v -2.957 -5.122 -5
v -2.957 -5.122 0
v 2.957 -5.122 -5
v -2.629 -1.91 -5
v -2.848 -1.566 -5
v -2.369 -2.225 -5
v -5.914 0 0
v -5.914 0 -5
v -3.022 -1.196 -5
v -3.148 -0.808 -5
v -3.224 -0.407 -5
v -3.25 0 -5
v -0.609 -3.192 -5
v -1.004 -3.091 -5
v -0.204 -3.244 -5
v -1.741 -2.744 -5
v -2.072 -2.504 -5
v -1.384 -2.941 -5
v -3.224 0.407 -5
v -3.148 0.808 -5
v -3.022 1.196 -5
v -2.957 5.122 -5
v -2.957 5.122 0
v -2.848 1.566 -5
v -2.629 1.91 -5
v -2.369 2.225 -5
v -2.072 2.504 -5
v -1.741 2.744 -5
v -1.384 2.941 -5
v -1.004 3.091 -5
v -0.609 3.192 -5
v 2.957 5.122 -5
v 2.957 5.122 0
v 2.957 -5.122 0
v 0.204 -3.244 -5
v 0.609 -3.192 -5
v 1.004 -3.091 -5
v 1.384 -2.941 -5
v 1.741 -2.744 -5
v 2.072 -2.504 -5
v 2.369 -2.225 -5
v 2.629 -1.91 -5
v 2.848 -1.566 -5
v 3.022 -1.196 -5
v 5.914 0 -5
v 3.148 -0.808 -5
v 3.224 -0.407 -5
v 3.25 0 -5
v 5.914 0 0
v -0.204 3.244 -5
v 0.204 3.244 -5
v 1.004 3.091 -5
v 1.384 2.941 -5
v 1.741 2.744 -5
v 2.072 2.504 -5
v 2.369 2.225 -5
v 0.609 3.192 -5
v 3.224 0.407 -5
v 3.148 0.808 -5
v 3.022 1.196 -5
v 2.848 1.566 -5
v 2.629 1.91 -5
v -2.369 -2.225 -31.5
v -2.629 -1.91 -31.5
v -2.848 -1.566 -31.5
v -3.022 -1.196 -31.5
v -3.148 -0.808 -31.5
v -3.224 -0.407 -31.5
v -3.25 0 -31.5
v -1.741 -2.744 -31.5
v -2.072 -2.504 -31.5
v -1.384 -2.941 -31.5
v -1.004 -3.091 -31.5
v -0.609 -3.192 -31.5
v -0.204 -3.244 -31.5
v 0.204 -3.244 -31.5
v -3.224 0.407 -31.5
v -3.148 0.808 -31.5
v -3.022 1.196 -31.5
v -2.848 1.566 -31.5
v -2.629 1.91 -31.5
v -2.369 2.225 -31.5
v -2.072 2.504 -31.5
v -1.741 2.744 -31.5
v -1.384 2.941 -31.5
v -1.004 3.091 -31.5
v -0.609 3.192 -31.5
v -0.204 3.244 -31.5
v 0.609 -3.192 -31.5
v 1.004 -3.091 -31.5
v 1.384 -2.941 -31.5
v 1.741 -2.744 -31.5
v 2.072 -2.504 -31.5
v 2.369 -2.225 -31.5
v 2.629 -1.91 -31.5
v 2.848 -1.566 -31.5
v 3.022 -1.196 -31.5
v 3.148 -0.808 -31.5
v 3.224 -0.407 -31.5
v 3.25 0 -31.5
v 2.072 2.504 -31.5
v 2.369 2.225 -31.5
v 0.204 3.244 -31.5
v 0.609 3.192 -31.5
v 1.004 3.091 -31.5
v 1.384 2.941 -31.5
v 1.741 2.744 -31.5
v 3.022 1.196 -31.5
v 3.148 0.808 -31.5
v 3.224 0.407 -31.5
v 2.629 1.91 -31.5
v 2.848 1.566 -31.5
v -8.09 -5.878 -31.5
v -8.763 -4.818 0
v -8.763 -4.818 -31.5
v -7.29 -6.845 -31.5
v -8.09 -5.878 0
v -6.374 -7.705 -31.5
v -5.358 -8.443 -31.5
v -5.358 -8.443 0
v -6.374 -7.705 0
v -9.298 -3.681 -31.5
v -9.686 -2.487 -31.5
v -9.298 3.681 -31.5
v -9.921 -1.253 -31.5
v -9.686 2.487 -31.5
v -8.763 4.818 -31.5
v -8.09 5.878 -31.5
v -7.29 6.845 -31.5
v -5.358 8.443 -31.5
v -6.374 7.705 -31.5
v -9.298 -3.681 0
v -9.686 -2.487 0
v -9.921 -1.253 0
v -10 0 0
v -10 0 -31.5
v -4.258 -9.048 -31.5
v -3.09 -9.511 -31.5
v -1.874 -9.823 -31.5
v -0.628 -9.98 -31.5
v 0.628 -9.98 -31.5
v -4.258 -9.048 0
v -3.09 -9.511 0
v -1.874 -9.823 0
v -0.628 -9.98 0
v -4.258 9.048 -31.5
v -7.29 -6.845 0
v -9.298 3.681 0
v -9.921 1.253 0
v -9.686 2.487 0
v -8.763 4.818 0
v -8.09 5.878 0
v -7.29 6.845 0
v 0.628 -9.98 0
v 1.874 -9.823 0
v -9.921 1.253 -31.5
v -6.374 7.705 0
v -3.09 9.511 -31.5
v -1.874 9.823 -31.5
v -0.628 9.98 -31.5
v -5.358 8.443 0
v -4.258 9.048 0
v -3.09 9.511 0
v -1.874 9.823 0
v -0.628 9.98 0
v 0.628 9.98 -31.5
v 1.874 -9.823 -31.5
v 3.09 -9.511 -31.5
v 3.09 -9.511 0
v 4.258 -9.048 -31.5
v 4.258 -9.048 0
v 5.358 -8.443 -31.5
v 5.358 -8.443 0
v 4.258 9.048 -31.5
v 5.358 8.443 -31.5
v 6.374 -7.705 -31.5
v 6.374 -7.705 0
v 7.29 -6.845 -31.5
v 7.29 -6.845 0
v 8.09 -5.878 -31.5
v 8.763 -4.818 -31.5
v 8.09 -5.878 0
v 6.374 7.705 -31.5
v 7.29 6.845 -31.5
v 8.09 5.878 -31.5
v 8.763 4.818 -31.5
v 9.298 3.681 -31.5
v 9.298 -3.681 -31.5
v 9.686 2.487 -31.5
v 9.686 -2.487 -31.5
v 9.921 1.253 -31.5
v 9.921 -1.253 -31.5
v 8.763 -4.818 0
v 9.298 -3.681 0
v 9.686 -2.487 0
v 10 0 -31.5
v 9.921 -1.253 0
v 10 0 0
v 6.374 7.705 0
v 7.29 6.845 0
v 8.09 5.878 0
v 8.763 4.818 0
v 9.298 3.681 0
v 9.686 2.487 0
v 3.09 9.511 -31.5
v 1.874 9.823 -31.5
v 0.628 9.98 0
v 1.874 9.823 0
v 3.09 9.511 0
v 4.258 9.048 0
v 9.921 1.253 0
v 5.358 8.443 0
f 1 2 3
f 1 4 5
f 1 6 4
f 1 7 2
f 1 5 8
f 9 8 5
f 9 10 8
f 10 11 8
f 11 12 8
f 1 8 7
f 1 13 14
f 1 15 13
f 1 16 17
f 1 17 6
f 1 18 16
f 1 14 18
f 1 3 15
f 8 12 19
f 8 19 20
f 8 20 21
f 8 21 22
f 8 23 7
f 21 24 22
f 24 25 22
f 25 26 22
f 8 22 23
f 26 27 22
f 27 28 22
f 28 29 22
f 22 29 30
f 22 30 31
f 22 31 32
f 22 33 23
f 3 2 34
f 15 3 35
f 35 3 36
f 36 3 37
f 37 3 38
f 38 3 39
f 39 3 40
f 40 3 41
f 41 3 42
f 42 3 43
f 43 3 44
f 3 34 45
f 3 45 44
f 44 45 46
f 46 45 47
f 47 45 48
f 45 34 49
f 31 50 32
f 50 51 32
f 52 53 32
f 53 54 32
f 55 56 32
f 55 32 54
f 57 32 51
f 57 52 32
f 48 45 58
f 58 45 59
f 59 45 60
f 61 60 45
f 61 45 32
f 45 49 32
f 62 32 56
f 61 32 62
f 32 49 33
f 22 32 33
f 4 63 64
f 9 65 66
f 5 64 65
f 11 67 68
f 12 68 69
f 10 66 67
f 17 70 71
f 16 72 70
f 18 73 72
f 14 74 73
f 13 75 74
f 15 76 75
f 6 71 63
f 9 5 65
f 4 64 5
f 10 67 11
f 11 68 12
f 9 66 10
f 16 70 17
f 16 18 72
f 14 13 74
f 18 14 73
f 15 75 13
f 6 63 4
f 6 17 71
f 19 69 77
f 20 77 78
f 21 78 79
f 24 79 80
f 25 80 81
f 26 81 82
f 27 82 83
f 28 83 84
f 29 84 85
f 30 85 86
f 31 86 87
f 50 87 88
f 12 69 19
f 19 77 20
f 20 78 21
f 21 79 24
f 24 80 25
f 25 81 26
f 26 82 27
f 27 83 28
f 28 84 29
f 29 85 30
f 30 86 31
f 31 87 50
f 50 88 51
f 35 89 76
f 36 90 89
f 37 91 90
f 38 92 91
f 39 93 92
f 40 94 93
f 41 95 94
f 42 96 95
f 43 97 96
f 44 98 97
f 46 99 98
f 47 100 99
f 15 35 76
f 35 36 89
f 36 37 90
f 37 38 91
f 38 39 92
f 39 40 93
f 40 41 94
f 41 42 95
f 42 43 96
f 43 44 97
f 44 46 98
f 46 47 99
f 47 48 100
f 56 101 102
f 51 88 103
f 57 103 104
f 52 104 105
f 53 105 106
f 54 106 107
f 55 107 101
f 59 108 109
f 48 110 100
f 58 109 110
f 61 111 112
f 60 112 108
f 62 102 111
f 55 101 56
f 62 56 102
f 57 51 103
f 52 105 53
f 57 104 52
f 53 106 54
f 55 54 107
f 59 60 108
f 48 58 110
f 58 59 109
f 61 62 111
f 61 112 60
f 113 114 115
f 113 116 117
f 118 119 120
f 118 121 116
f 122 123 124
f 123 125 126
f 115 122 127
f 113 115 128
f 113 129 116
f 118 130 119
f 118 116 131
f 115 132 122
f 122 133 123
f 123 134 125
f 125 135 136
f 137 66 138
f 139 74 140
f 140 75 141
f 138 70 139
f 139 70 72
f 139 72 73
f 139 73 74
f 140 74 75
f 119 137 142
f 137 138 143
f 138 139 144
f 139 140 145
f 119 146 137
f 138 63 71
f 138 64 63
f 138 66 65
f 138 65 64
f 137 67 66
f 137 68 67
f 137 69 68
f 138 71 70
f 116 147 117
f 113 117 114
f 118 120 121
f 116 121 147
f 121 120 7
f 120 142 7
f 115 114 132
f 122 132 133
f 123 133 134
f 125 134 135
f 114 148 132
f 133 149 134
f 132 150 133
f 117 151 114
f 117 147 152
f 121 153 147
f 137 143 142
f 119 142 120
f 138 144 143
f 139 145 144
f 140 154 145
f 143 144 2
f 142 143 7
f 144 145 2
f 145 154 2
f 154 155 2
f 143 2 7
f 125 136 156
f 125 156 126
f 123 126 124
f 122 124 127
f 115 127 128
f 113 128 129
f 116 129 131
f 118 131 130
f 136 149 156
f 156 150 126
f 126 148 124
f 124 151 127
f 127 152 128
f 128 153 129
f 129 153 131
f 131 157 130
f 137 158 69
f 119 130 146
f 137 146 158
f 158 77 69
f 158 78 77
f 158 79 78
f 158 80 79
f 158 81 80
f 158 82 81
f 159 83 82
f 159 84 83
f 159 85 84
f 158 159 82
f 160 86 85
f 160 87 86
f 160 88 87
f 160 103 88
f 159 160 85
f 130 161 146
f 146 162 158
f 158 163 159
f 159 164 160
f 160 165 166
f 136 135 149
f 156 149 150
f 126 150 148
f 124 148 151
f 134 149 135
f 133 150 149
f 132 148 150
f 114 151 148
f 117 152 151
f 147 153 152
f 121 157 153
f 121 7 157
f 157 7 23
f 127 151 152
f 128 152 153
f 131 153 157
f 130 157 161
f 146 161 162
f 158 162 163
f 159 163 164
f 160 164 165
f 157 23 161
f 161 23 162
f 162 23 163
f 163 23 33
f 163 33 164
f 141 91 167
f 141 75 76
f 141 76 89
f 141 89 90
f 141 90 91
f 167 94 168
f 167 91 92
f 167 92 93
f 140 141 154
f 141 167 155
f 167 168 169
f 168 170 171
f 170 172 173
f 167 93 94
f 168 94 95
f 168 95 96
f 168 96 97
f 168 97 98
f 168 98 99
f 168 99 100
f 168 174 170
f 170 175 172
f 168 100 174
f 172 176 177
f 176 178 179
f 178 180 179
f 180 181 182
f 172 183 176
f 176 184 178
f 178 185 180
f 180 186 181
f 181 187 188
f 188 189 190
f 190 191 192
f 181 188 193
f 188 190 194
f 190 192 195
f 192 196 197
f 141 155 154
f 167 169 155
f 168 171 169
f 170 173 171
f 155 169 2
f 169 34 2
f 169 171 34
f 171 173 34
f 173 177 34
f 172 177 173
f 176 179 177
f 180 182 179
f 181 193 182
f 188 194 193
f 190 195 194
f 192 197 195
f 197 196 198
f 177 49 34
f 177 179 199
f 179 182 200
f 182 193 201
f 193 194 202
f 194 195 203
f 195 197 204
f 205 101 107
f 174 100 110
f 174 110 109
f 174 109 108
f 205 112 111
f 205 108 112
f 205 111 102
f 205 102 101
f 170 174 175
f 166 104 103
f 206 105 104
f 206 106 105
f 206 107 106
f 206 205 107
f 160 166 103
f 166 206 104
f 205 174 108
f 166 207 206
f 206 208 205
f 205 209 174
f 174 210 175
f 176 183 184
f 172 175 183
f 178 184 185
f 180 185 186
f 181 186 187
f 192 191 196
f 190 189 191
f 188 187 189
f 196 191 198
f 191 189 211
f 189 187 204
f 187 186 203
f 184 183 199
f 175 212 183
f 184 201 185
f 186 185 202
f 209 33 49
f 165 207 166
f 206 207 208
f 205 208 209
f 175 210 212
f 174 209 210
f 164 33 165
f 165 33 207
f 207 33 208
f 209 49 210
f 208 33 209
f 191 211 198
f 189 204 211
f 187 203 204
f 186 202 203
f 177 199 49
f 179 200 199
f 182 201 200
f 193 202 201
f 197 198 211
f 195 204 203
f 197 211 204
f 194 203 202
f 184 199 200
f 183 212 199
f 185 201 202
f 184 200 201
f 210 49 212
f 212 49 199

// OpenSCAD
$fn = 50;

difference() {
	union() {
		translate(v = [0, 0, -31.5]) {
			cylinder(h = 31.5, r = 10.0);
		}
	}
	union() {
		translate(v = [0, 0, 0]) {
			rotate(a = [0, 0, 0]) {
				difference() {
					union() {
						translate(v = [0, 0, -5]) {
							linear_extrude(height = 5) {
								polygon(points = [[5.914249999999999, 0.0], [2.957125, 5.1218907443321156], [-2.9571249999999982, 5.1218907443321156], [-5.914249999999999, 7.242867331857232e-16], [-2.9571250000000022, -5.121890744332115], [2.9571249999999956, -5.121890744332118]]);
							}
						}
					}
					union();
				}
			}
		}
		#translate(v = [0, 0, -100.0]) {
			cylinder(h = 200, r = 3.25);
		}
	}
}
